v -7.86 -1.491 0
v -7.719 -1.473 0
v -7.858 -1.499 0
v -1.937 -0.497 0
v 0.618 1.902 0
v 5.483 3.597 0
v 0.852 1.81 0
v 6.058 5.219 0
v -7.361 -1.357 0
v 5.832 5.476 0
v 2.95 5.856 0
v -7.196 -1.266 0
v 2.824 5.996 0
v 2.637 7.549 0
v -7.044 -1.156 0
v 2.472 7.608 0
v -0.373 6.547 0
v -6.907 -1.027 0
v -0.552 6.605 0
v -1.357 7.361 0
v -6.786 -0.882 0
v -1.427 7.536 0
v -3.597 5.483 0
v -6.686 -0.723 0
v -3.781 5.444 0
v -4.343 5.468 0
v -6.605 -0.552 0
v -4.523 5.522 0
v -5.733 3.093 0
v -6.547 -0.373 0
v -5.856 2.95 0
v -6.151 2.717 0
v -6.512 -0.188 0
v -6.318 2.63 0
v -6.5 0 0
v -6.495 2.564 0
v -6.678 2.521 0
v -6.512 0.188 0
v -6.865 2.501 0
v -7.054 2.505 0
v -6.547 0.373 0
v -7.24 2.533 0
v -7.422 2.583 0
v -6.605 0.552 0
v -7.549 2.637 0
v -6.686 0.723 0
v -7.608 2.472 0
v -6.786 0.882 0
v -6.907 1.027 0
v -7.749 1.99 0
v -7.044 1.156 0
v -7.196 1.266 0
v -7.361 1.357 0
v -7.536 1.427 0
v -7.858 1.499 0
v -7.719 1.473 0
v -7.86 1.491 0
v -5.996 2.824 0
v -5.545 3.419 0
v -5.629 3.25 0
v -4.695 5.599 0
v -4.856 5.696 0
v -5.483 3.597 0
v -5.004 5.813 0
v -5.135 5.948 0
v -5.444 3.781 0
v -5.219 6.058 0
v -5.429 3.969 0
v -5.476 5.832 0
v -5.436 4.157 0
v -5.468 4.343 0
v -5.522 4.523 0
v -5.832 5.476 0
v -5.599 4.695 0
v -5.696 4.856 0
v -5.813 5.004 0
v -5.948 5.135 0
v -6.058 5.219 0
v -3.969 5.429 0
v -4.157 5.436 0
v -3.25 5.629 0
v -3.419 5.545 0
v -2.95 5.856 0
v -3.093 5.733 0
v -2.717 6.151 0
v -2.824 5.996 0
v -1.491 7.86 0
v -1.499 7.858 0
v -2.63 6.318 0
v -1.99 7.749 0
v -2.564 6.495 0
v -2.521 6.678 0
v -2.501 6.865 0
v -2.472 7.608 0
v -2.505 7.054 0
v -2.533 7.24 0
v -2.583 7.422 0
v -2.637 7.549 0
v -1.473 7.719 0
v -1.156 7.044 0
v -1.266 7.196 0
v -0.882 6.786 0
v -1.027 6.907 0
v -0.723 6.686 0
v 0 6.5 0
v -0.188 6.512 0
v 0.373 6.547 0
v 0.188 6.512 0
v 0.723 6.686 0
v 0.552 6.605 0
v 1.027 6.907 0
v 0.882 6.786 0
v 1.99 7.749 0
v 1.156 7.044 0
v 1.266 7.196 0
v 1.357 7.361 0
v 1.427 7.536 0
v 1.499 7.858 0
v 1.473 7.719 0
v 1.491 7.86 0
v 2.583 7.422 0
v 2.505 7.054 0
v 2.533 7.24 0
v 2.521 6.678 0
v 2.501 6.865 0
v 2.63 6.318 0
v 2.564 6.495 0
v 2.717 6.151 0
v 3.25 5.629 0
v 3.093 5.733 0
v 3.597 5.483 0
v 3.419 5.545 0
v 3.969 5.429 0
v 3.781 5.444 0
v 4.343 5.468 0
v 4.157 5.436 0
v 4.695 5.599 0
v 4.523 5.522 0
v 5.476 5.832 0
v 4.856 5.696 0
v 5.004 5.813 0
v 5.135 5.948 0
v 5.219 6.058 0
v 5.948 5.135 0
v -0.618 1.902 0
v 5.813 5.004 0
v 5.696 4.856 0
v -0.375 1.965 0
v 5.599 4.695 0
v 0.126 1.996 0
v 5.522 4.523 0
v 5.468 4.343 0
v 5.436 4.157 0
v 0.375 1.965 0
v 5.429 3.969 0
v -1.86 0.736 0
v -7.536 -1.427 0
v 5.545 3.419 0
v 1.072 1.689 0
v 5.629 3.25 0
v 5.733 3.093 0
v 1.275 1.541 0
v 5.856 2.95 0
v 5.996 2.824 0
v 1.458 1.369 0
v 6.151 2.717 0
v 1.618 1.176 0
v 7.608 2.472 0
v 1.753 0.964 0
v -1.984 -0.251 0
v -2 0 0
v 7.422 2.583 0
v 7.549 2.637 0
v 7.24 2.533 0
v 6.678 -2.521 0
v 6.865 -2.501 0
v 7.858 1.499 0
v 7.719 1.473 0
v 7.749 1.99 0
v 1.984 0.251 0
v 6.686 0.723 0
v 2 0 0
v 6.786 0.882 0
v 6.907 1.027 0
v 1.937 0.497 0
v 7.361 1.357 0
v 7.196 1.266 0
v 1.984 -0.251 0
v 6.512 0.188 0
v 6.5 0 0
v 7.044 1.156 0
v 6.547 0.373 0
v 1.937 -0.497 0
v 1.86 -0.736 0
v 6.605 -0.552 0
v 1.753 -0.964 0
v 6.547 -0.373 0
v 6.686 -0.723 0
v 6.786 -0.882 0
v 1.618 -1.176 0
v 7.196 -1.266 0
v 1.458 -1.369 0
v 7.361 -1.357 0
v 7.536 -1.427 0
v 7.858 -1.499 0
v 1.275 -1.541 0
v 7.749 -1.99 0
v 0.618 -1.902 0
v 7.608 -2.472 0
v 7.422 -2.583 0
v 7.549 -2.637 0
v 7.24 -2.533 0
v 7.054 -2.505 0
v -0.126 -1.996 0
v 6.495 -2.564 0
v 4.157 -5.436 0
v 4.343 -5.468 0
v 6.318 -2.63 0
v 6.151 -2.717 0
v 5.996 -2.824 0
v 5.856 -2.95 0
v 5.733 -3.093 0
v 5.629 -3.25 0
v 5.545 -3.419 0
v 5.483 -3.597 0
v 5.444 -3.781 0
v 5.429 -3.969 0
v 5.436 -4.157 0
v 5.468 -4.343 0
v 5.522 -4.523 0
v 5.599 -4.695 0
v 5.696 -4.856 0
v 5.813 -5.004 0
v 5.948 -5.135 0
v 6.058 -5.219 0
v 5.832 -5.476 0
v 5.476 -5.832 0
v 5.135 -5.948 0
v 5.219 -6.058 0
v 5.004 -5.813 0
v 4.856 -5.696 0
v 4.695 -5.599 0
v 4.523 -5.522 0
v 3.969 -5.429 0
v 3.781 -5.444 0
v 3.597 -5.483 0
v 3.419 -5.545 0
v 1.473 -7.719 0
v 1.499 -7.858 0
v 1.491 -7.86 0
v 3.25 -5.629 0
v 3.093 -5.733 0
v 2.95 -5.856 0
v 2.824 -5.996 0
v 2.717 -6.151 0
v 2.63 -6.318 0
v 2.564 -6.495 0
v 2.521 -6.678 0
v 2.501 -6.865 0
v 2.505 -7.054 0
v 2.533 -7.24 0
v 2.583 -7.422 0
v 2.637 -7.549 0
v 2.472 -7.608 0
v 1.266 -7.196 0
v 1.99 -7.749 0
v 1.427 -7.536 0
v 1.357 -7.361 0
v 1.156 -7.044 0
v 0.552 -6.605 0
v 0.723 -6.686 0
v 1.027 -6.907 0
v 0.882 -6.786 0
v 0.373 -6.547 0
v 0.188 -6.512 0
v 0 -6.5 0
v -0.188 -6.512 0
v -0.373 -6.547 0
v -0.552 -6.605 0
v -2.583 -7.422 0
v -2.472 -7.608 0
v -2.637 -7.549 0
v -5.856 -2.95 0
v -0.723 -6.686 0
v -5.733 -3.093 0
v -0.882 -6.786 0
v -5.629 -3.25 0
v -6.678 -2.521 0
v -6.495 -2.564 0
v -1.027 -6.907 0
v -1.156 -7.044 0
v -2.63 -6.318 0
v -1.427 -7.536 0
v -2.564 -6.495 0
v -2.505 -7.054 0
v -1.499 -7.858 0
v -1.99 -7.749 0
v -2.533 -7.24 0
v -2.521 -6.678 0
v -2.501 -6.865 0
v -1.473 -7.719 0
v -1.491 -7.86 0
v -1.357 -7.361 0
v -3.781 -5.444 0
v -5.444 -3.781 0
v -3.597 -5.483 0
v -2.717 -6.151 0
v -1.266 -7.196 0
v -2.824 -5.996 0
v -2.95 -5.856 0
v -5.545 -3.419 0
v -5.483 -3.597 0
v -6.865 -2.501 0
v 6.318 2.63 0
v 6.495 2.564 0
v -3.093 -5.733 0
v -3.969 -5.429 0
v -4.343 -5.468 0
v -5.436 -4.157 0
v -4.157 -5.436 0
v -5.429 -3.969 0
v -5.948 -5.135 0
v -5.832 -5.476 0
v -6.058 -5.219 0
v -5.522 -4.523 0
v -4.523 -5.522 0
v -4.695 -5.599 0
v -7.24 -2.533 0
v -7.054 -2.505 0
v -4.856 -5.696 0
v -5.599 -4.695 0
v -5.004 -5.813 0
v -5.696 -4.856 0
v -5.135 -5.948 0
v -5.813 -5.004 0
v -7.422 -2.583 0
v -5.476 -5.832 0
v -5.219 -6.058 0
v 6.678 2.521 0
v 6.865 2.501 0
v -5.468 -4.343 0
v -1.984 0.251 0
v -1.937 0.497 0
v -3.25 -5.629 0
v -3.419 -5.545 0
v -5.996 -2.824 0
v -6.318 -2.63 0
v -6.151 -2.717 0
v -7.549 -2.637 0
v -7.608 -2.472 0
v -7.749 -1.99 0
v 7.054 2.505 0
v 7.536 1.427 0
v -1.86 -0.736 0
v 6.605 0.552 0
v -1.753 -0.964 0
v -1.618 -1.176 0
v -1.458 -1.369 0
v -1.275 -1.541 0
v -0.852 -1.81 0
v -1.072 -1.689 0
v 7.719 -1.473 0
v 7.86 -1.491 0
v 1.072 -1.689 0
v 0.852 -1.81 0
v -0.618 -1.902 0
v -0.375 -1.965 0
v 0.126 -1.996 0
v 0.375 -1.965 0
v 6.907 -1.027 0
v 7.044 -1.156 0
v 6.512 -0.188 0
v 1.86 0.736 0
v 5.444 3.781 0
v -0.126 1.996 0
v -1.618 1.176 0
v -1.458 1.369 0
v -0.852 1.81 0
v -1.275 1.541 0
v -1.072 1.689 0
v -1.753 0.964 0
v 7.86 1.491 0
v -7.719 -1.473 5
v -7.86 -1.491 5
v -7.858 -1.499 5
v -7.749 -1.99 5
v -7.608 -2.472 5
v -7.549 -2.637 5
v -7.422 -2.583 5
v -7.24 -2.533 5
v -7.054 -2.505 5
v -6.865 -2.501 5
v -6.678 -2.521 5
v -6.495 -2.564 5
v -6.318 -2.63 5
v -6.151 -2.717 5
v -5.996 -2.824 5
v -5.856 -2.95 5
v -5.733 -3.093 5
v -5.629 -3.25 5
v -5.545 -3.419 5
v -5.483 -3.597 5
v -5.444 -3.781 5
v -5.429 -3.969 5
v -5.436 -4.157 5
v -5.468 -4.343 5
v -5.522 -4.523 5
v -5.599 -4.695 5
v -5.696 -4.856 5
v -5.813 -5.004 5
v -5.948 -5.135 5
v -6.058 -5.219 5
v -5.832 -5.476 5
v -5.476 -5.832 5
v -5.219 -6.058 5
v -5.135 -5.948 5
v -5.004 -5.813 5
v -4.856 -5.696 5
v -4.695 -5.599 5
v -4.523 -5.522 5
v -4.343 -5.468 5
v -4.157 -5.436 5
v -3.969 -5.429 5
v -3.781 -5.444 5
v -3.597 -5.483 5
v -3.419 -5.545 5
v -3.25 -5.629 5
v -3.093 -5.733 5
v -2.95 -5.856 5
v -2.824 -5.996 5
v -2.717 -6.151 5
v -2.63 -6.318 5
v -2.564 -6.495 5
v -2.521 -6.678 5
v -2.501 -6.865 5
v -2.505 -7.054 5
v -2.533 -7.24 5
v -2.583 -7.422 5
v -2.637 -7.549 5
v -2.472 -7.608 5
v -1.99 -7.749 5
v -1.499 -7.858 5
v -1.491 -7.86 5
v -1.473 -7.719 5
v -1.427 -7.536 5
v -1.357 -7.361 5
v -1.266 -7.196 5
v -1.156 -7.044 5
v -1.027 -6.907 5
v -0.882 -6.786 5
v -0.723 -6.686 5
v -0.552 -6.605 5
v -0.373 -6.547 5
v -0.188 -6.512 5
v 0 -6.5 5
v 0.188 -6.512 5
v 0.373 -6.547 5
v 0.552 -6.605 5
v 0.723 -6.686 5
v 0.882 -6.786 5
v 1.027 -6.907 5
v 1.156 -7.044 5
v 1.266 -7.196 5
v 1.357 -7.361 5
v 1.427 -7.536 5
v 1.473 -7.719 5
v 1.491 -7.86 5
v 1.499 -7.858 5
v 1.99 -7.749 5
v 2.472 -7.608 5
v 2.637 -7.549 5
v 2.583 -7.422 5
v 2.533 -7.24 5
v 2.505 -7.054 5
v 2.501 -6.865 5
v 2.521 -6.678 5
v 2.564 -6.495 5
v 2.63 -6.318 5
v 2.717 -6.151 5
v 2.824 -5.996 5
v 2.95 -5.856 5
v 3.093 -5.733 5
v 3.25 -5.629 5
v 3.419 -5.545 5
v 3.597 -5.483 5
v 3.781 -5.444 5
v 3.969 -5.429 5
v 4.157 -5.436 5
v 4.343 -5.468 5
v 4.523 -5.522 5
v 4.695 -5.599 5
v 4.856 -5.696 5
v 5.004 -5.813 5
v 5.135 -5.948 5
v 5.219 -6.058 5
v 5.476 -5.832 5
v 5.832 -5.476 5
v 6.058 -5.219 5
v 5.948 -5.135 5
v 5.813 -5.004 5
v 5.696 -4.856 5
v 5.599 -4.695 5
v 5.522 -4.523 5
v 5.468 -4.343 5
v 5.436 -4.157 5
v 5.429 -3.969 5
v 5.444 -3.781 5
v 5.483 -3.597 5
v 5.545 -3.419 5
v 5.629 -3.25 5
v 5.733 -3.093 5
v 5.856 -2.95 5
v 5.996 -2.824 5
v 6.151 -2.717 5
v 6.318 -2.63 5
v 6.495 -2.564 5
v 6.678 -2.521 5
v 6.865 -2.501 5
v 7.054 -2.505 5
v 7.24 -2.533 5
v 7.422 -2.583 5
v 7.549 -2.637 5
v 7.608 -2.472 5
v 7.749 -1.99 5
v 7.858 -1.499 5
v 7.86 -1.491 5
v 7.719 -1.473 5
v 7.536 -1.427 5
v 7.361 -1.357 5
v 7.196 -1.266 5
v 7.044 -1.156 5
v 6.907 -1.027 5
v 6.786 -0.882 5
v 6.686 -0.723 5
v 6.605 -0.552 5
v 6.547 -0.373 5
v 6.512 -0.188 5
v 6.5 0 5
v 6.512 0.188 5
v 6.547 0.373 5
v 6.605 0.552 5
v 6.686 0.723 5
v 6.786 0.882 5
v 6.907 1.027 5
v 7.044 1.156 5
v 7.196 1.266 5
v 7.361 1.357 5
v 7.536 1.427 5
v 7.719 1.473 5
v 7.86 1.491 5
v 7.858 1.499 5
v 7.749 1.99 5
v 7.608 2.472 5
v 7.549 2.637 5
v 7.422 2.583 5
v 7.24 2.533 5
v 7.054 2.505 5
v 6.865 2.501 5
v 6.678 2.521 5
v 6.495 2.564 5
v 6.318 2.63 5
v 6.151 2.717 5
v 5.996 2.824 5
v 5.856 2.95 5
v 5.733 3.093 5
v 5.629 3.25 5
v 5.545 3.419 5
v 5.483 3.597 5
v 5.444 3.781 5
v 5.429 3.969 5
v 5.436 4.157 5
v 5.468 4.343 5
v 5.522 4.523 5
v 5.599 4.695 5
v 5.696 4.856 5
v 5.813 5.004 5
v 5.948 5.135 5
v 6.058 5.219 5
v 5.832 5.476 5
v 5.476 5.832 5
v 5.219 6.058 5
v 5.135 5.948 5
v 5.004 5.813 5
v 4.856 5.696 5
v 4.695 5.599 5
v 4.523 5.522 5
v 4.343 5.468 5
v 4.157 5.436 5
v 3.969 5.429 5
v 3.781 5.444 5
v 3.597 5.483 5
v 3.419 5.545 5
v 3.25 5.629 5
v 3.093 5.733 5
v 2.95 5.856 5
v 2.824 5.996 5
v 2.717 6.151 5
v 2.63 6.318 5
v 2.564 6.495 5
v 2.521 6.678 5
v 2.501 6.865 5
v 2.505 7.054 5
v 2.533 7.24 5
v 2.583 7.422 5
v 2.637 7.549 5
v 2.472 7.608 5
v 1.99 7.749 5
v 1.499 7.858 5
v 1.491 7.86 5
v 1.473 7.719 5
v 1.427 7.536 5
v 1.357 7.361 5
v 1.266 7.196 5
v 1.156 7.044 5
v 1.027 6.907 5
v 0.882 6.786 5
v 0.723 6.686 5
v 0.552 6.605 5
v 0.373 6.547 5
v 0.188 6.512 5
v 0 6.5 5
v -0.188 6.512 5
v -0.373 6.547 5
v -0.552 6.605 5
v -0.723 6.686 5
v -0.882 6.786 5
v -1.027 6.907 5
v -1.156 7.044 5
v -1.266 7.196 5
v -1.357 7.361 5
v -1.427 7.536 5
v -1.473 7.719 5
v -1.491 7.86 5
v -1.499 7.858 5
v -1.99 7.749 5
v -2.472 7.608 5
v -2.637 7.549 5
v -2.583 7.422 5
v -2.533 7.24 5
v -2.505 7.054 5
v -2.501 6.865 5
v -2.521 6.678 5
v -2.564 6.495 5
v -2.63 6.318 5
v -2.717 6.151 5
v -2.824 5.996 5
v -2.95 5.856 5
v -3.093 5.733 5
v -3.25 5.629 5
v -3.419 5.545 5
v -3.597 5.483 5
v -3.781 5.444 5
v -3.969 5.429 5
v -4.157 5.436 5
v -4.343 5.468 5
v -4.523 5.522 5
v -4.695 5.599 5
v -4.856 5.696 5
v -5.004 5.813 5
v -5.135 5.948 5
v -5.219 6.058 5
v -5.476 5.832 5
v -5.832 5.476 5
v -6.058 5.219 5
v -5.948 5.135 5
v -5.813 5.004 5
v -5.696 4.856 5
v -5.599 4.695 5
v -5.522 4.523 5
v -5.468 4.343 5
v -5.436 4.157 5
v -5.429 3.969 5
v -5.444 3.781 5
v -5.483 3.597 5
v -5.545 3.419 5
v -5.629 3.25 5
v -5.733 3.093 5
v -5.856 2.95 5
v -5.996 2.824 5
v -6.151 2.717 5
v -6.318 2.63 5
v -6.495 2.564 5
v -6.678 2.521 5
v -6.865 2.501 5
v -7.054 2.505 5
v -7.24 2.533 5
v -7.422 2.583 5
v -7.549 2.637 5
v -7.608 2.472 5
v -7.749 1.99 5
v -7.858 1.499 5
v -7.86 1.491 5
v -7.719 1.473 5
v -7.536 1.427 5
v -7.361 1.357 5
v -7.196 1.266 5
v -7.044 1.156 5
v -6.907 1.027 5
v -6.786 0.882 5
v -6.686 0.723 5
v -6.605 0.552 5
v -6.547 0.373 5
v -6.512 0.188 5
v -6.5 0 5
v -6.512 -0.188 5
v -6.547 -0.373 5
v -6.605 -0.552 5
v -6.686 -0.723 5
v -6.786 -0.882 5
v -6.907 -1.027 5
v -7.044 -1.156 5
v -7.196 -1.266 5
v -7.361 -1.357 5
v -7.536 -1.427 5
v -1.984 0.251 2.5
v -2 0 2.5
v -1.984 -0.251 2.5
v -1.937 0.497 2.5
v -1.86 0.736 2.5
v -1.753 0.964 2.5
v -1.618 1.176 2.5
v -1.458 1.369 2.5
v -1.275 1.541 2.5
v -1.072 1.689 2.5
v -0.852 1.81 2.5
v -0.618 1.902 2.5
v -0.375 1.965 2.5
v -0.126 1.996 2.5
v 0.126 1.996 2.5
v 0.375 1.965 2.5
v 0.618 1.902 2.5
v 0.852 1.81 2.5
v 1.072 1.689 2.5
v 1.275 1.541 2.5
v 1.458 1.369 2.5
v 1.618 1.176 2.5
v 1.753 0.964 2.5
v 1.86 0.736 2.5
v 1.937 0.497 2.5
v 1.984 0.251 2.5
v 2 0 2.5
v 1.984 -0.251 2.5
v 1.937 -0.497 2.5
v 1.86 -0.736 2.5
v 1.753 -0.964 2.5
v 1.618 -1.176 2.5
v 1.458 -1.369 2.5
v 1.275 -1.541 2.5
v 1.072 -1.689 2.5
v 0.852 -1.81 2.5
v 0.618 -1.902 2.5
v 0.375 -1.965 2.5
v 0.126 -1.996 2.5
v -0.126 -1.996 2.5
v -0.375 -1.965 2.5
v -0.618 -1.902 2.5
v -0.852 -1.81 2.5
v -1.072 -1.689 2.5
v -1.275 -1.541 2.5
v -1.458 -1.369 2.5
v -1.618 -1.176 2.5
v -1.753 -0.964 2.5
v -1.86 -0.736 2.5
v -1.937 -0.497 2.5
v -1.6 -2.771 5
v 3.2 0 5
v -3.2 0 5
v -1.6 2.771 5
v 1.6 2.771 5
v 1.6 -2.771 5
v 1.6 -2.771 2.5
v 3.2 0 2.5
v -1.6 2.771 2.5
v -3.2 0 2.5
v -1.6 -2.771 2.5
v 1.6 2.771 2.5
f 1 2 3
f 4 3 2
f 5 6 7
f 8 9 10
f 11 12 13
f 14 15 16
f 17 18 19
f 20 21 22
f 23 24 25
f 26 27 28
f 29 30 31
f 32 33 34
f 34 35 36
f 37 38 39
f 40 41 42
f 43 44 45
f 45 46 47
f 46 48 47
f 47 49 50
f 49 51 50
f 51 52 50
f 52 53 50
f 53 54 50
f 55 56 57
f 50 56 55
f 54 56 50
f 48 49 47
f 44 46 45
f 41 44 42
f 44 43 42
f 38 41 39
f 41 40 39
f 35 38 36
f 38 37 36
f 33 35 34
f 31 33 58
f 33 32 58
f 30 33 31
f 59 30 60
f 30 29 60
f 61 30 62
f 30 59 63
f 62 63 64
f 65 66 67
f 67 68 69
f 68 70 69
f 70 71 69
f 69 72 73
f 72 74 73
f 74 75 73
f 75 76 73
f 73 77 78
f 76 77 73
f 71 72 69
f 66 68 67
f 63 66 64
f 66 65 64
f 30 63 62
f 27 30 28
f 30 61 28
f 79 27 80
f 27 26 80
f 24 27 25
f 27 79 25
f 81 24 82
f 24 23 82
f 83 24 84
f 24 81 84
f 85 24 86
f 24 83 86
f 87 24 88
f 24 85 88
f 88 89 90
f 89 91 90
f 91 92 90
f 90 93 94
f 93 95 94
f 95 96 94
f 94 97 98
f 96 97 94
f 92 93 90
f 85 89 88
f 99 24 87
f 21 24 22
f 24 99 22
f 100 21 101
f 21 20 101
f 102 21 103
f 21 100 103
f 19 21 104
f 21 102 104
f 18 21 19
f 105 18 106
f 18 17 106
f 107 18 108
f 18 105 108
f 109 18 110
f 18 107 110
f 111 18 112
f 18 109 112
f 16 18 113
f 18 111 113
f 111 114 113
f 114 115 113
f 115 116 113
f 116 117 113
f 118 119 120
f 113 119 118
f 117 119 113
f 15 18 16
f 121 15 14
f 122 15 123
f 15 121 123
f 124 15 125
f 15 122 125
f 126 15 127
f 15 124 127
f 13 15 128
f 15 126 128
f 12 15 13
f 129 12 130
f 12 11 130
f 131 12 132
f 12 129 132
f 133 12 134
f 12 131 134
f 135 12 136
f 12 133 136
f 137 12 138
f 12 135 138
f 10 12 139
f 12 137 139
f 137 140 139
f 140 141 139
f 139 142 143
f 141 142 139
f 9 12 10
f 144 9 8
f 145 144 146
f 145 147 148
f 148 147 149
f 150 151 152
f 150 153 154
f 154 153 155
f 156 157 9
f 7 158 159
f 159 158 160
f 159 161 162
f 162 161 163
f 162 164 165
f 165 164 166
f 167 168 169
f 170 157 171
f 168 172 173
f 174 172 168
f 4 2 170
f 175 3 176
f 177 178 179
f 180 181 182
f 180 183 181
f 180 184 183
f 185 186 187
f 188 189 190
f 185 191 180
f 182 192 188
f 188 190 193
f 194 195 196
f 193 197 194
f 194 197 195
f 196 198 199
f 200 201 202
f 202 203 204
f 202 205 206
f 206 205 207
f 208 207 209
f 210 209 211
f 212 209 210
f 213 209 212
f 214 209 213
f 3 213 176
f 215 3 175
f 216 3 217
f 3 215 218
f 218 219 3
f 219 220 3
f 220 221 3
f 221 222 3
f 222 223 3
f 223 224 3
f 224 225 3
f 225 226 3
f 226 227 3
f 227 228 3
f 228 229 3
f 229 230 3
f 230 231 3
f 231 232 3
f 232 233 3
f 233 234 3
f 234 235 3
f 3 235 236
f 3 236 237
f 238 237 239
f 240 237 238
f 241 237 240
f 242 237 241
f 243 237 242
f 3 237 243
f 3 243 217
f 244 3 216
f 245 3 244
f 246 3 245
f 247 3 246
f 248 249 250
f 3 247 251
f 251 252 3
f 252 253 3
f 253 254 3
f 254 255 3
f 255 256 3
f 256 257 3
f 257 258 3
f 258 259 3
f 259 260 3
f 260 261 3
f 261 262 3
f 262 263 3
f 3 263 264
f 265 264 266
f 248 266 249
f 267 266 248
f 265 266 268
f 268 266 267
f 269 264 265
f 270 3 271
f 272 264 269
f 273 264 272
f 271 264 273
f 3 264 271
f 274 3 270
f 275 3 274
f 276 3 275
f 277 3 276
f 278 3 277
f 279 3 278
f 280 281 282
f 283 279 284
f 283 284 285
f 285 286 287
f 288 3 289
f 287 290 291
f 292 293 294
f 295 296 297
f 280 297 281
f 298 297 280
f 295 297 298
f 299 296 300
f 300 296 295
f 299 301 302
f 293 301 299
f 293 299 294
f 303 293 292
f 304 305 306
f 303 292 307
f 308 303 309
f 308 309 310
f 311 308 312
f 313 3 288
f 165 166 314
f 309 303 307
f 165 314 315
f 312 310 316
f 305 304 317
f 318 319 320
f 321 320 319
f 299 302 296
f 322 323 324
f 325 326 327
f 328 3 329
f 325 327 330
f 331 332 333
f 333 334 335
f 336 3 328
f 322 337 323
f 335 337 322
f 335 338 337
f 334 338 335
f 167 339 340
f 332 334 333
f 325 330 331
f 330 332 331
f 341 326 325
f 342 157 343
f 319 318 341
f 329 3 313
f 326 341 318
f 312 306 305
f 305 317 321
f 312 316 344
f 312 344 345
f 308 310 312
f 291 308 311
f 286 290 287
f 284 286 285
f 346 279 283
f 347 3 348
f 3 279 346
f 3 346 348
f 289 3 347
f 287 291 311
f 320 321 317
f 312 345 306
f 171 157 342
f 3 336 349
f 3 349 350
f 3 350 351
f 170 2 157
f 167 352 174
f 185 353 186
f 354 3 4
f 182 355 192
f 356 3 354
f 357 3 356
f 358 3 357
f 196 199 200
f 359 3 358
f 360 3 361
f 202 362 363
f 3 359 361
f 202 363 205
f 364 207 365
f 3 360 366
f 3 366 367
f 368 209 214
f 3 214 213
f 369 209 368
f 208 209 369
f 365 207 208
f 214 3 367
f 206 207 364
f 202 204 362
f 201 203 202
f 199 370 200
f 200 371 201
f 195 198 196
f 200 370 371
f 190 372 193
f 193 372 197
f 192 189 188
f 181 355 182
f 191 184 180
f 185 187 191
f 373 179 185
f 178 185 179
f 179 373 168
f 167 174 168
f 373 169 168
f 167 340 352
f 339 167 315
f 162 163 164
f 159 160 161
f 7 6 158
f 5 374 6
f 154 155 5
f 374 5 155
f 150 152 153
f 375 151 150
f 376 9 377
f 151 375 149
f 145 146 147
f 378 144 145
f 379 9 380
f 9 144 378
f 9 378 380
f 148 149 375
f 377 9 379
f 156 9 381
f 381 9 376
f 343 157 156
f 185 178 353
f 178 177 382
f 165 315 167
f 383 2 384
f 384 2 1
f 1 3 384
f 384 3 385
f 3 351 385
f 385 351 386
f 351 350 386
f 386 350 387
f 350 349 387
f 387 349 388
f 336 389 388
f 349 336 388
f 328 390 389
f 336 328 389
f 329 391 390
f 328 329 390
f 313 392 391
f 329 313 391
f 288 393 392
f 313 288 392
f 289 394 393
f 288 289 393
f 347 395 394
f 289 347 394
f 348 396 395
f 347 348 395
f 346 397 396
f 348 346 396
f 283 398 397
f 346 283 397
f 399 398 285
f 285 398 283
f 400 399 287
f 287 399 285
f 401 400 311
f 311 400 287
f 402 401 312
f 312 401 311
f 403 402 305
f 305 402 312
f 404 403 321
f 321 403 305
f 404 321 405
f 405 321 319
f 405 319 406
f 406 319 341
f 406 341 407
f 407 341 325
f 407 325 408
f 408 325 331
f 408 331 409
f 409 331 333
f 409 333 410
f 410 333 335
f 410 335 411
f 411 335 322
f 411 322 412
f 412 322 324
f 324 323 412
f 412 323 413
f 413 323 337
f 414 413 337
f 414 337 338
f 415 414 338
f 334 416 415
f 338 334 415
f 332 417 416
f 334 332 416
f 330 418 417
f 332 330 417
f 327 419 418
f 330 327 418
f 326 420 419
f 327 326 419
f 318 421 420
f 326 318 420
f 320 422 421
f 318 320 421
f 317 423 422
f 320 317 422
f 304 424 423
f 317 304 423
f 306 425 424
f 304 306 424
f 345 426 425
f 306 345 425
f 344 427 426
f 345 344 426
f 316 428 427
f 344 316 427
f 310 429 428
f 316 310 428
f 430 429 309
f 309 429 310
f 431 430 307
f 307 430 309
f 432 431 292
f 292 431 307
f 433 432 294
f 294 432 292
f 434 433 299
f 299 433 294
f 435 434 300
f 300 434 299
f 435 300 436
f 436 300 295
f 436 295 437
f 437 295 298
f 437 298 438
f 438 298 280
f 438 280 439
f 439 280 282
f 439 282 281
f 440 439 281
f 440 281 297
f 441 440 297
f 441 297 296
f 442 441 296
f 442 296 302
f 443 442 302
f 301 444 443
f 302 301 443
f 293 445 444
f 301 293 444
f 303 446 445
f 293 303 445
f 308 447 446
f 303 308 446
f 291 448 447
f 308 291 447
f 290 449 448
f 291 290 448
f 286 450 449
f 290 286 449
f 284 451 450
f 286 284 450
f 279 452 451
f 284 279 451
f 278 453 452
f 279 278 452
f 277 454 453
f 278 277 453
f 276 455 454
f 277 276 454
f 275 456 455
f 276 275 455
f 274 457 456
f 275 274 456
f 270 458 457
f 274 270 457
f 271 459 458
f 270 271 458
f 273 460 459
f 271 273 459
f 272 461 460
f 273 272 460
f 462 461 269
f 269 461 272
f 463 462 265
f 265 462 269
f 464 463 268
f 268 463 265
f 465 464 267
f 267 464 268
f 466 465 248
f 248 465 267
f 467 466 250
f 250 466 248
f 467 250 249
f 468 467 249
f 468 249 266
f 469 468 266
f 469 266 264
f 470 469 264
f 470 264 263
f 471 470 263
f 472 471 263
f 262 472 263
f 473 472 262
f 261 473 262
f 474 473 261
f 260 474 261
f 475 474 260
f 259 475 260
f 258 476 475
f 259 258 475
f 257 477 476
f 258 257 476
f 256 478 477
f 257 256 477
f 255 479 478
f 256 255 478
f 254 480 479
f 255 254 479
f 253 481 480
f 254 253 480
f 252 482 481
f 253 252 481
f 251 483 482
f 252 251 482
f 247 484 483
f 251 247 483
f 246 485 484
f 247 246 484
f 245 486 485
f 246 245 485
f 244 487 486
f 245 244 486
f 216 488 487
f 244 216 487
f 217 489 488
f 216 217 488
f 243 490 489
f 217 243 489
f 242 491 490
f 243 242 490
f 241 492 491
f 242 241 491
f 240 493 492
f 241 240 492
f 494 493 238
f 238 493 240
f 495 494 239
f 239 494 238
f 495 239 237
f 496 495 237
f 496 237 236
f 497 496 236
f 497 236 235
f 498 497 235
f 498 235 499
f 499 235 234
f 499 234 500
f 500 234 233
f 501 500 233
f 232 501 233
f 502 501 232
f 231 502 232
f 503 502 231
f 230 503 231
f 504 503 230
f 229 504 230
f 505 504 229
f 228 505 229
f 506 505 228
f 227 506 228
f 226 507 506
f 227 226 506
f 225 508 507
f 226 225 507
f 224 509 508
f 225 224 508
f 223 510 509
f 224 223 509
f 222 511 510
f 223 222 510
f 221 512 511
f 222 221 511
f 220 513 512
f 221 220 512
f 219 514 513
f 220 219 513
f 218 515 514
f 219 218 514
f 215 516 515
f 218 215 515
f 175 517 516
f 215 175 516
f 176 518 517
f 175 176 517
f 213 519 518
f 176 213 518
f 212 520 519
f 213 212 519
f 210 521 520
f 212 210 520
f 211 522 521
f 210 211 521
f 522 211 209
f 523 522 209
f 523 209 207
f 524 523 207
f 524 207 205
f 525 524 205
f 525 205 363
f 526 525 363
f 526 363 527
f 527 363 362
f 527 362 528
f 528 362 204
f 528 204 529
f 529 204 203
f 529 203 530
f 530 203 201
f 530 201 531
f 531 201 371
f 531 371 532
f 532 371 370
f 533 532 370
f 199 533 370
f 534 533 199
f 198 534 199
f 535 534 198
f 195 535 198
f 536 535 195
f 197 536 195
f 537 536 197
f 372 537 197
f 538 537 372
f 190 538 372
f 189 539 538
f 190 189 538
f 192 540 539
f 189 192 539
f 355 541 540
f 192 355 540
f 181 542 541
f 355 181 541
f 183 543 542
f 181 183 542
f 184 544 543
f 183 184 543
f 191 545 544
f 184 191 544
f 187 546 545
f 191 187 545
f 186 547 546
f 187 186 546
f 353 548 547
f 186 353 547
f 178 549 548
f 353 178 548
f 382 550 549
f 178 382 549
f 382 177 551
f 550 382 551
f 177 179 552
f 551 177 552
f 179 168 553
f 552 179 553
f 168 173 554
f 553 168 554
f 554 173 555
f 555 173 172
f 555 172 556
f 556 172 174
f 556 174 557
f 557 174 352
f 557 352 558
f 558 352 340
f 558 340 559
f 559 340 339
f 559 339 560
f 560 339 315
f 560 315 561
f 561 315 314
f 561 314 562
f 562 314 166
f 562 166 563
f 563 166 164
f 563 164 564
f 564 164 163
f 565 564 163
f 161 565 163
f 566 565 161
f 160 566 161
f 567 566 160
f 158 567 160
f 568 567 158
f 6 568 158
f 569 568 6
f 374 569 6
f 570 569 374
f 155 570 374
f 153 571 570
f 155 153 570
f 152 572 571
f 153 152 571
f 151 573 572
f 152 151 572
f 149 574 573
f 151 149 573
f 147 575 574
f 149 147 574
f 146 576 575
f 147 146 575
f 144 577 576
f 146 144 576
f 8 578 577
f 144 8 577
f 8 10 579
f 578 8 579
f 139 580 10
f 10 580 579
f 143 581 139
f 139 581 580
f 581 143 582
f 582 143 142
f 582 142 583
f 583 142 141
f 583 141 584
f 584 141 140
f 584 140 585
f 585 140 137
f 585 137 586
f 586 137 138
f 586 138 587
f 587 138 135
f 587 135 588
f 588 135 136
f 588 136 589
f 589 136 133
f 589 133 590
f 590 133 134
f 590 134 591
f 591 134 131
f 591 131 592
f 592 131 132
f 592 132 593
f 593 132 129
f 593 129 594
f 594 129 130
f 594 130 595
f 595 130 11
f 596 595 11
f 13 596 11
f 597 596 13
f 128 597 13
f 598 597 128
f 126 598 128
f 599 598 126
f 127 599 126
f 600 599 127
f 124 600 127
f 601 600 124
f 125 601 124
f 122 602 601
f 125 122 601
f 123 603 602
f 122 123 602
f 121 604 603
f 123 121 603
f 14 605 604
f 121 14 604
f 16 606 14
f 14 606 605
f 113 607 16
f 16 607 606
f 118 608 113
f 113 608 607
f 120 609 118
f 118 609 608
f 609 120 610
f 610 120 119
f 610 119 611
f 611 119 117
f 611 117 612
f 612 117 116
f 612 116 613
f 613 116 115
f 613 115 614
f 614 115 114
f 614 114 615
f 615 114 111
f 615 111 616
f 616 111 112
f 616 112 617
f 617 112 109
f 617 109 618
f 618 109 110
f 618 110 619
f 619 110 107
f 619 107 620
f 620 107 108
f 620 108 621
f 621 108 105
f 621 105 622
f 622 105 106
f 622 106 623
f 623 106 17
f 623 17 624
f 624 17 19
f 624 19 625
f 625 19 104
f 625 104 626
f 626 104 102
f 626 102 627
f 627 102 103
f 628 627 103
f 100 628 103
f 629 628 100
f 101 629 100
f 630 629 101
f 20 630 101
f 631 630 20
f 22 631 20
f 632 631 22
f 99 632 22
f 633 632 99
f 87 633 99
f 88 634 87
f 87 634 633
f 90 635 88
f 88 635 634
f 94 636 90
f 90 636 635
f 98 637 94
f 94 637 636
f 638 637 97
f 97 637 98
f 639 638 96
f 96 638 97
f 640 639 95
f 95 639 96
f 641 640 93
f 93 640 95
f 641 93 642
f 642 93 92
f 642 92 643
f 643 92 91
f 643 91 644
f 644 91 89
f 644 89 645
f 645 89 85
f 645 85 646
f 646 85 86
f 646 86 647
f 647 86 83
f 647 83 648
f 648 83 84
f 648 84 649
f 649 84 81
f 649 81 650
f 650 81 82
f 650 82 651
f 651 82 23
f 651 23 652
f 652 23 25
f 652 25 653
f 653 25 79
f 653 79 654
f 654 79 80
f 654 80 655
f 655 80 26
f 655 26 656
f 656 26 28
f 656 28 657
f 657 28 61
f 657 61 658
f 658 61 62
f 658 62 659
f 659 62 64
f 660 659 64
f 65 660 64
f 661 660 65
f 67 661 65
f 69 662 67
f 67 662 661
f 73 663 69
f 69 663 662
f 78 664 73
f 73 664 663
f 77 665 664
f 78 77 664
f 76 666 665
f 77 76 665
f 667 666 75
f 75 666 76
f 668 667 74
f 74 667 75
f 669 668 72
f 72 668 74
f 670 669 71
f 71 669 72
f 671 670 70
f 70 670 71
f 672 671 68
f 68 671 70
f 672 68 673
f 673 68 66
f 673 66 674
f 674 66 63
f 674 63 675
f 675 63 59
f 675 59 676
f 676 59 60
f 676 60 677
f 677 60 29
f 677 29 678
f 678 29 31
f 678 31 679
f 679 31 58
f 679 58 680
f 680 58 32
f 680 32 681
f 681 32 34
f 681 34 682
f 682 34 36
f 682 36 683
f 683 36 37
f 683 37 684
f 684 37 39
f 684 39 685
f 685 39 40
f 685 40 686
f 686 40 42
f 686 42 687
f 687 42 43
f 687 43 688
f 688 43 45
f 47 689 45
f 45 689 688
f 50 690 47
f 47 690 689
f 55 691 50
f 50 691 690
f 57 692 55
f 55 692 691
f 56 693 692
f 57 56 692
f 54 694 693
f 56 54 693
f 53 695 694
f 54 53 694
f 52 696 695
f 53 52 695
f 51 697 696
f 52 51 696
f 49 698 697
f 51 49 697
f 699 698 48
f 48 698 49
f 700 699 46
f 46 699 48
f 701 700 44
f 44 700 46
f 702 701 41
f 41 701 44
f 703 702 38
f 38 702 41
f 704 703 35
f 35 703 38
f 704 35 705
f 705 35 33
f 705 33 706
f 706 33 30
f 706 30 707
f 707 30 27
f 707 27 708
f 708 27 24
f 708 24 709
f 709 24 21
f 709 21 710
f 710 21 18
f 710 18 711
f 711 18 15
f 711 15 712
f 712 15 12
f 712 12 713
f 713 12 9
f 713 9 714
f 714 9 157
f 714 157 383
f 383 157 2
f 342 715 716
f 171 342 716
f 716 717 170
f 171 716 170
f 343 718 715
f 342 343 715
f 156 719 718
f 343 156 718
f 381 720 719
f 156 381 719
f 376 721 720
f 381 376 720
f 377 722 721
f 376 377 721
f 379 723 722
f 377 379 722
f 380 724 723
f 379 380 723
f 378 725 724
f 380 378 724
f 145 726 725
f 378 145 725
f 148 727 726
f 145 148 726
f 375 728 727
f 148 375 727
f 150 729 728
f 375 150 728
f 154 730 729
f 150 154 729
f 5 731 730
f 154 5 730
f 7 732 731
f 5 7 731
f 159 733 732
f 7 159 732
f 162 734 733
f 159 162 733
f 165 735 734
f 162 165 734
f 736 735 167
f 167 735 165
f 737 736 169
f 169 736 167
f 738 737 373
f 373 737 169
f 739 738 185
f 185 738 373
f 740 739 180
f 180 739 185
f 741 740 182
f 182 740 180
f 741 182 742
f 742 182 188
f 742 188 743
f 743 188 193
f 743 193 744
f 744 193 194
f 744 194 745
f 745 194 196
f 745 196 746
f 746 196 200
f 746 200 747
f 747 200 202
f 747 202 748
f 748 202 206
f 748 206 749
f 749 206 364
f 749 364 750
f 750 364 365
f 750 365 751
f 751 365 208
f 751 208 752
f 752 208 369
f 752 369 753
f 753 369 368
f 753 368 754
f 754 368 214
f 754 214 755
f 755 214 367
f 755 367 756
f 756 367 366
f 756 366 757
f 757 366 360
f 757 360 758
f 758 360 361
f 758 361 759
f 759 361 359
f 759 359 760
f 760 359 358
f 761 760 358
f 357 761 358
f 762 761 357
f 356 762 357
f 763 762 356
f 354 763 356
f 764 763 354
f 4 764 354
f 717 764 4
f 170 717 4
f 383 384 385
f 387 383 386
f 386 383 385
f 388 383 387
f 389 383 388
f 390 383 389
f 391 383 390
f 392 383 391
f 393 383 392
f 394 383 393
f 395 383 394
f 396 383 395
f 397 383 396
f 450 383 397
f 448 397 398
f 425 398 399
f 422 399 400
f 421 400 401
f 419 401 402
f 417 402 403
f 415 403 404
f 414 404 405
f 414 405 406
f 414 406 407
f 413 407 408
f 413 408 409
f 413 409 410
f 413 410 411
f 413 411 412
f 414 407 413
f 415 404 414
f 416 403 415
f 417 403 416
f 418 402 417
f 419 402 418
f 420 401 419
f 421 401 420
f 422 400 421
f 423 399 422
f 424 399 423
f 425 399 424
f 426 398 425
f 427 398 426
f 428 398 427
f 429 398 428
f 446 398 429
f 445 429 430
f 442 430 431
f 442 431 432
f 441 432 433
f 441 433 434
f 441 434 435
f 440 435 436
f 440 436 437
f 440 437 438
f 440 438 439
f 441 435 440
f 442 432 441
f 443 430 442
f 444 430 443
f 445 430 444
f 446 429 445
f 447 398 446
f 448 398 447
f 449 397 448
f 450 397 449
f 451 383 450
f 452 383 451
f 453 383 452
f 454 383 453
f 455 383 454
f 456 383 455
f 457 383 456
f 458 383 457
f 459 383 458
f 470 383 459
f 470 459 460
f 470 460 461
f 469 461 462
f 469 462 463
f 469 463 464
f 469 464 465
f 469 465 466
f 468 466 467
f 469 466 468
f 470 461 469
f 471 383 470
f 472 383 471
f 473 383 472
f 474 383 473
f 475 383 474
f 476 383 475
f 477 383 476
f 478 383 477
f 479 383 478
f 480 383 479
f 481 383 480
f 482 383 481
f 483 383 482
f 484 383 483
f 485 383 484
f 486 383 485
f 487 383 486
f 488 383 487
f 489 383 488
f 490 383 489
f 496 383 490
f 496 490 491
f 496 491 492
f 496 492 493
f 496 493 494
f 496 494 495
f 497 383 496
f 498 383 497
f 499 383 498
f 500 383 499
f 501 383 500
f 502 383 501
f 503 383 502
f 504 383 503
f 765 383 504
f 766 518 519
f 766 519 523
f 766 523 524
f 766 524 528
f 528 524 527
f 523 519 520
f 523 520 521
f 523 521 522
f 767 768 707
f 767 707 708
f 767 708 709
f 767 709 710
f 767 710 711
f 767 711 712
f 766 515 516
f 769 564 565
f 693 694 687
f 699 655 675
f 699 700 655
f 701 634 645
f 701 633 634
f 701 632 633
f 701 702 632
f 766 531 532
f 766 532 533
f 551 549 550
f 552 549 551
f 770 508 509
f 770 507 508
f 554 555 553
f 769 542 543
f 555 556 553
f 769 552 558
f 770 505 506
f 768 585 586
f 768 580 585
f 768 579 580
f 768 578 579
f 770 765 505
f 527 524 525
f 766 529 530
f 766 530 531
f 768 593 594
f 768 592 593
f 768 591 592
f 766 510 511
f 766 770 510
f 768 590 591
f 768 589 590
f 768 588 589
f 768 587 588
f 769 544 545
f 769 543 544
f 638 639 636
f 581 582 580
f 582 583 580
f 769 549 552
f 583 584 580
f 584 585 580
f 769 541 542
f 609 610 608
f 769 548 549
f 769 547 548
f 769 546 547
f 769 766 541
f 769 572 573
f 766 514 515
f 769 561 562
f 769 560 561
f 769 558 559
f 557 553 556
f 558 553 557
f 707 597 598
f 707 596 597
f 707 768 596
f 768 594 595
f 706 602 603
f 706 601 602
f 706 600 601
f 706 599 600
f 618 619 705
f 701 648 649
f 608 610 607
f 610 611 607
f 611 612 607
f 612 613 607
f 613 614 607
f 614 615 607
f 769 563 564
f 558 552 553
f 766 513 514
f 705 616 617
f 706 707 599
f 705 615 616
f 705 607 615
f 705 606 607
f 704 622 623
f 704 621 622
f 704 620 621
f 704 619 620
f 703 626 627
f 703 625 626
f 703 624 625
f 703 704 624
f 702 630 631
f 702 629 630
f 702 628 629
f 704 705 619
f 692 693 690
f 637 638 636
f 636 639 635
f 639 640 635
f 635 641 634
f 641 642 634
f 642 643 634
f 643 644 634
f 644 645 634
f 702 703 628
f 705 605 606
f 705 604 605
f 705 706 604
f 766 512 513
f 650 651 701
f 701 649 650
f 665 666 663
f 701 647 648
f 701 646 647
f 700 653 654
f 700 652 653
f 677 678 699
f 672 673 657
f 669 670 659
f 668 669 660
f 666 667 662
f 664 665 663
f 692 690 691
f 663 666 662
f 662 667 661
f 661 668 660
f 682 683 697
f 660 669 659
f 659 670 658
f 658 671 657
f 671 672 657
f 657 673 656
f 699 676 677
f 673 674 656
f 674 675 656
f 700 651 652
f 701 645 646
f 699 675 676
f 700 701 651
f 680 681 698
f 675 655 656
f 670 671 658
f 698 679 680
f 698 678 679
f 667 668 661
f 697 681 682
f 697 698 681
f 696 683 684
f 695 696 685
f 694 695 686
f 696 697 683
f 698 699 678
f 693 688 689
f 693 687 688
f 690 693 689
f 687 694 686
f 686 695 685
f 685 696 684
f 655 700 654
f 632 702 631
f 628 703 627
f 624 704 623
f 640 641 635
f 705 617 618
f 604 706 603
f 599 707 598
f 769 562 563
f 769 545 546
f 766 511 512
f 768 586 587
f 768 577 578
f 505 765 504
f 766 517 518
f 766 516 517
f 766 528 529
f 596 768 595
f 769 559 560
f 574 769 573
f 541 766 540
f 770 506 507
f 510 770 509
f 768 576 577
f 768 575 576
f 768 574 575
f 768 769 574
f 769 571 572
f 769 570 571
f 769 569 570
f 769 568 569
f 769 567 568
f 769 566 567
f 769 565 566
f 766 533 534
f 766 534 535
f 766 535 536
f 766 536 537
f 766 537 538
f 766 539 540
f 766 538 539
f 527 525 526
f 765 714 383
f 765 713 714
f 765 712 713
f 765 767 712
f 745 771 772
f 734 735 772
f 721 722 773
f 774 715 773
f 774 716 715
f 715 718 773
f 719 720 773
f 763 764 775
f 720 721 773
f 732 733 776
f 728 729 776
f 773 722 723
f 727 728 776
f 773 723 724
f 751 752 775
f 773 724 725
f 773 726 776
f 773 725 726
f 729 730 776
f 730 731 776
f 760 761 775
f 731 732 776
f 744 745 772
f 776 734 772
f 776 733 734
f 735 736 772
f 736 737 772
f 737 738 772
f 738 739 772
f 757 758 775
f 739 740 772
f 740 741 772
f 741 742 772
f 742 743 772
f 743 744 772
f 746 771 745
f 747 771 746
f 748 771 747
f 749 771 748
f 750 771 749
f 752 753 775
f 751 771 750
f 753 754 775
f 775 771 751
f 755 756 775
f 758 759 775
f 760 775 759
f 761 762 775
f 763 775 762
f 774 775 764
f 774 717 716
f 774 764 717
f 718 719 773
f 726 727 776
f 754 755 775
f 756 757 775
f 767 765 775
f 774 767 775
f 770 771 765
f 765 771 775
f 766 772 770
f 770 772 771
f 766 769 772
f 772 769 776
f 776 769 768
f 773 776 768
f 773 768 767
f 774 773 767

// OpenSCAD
r_molette=8; //10 pour les petites et 12 pour les grandes
r_trou=1.5;
trou_m3=2;
ecrou_m3=3.2;
ep=5;
nb_trou=12;

module trou(){
	translate([r_molette,0,-5]){cylinder(h=ep+10, r=r_trou, $fn=50);}

}

module molette(){
	difference(){
		cylinder(h=ep, r=r_molette, $fn=100);

		translate([0,0,-5]){cylinder(h=ep+10, r=trou_m3, $fn=50);}
		translate([0,0,ep/2]){cylinder(h=ep, r=ecrou_m3, $fn=6);}

		for(i=[0:1:nb_trou]){
		rotate([0,0,i*(360/nb_trou)])trou();
		}

	}

}

molette();
